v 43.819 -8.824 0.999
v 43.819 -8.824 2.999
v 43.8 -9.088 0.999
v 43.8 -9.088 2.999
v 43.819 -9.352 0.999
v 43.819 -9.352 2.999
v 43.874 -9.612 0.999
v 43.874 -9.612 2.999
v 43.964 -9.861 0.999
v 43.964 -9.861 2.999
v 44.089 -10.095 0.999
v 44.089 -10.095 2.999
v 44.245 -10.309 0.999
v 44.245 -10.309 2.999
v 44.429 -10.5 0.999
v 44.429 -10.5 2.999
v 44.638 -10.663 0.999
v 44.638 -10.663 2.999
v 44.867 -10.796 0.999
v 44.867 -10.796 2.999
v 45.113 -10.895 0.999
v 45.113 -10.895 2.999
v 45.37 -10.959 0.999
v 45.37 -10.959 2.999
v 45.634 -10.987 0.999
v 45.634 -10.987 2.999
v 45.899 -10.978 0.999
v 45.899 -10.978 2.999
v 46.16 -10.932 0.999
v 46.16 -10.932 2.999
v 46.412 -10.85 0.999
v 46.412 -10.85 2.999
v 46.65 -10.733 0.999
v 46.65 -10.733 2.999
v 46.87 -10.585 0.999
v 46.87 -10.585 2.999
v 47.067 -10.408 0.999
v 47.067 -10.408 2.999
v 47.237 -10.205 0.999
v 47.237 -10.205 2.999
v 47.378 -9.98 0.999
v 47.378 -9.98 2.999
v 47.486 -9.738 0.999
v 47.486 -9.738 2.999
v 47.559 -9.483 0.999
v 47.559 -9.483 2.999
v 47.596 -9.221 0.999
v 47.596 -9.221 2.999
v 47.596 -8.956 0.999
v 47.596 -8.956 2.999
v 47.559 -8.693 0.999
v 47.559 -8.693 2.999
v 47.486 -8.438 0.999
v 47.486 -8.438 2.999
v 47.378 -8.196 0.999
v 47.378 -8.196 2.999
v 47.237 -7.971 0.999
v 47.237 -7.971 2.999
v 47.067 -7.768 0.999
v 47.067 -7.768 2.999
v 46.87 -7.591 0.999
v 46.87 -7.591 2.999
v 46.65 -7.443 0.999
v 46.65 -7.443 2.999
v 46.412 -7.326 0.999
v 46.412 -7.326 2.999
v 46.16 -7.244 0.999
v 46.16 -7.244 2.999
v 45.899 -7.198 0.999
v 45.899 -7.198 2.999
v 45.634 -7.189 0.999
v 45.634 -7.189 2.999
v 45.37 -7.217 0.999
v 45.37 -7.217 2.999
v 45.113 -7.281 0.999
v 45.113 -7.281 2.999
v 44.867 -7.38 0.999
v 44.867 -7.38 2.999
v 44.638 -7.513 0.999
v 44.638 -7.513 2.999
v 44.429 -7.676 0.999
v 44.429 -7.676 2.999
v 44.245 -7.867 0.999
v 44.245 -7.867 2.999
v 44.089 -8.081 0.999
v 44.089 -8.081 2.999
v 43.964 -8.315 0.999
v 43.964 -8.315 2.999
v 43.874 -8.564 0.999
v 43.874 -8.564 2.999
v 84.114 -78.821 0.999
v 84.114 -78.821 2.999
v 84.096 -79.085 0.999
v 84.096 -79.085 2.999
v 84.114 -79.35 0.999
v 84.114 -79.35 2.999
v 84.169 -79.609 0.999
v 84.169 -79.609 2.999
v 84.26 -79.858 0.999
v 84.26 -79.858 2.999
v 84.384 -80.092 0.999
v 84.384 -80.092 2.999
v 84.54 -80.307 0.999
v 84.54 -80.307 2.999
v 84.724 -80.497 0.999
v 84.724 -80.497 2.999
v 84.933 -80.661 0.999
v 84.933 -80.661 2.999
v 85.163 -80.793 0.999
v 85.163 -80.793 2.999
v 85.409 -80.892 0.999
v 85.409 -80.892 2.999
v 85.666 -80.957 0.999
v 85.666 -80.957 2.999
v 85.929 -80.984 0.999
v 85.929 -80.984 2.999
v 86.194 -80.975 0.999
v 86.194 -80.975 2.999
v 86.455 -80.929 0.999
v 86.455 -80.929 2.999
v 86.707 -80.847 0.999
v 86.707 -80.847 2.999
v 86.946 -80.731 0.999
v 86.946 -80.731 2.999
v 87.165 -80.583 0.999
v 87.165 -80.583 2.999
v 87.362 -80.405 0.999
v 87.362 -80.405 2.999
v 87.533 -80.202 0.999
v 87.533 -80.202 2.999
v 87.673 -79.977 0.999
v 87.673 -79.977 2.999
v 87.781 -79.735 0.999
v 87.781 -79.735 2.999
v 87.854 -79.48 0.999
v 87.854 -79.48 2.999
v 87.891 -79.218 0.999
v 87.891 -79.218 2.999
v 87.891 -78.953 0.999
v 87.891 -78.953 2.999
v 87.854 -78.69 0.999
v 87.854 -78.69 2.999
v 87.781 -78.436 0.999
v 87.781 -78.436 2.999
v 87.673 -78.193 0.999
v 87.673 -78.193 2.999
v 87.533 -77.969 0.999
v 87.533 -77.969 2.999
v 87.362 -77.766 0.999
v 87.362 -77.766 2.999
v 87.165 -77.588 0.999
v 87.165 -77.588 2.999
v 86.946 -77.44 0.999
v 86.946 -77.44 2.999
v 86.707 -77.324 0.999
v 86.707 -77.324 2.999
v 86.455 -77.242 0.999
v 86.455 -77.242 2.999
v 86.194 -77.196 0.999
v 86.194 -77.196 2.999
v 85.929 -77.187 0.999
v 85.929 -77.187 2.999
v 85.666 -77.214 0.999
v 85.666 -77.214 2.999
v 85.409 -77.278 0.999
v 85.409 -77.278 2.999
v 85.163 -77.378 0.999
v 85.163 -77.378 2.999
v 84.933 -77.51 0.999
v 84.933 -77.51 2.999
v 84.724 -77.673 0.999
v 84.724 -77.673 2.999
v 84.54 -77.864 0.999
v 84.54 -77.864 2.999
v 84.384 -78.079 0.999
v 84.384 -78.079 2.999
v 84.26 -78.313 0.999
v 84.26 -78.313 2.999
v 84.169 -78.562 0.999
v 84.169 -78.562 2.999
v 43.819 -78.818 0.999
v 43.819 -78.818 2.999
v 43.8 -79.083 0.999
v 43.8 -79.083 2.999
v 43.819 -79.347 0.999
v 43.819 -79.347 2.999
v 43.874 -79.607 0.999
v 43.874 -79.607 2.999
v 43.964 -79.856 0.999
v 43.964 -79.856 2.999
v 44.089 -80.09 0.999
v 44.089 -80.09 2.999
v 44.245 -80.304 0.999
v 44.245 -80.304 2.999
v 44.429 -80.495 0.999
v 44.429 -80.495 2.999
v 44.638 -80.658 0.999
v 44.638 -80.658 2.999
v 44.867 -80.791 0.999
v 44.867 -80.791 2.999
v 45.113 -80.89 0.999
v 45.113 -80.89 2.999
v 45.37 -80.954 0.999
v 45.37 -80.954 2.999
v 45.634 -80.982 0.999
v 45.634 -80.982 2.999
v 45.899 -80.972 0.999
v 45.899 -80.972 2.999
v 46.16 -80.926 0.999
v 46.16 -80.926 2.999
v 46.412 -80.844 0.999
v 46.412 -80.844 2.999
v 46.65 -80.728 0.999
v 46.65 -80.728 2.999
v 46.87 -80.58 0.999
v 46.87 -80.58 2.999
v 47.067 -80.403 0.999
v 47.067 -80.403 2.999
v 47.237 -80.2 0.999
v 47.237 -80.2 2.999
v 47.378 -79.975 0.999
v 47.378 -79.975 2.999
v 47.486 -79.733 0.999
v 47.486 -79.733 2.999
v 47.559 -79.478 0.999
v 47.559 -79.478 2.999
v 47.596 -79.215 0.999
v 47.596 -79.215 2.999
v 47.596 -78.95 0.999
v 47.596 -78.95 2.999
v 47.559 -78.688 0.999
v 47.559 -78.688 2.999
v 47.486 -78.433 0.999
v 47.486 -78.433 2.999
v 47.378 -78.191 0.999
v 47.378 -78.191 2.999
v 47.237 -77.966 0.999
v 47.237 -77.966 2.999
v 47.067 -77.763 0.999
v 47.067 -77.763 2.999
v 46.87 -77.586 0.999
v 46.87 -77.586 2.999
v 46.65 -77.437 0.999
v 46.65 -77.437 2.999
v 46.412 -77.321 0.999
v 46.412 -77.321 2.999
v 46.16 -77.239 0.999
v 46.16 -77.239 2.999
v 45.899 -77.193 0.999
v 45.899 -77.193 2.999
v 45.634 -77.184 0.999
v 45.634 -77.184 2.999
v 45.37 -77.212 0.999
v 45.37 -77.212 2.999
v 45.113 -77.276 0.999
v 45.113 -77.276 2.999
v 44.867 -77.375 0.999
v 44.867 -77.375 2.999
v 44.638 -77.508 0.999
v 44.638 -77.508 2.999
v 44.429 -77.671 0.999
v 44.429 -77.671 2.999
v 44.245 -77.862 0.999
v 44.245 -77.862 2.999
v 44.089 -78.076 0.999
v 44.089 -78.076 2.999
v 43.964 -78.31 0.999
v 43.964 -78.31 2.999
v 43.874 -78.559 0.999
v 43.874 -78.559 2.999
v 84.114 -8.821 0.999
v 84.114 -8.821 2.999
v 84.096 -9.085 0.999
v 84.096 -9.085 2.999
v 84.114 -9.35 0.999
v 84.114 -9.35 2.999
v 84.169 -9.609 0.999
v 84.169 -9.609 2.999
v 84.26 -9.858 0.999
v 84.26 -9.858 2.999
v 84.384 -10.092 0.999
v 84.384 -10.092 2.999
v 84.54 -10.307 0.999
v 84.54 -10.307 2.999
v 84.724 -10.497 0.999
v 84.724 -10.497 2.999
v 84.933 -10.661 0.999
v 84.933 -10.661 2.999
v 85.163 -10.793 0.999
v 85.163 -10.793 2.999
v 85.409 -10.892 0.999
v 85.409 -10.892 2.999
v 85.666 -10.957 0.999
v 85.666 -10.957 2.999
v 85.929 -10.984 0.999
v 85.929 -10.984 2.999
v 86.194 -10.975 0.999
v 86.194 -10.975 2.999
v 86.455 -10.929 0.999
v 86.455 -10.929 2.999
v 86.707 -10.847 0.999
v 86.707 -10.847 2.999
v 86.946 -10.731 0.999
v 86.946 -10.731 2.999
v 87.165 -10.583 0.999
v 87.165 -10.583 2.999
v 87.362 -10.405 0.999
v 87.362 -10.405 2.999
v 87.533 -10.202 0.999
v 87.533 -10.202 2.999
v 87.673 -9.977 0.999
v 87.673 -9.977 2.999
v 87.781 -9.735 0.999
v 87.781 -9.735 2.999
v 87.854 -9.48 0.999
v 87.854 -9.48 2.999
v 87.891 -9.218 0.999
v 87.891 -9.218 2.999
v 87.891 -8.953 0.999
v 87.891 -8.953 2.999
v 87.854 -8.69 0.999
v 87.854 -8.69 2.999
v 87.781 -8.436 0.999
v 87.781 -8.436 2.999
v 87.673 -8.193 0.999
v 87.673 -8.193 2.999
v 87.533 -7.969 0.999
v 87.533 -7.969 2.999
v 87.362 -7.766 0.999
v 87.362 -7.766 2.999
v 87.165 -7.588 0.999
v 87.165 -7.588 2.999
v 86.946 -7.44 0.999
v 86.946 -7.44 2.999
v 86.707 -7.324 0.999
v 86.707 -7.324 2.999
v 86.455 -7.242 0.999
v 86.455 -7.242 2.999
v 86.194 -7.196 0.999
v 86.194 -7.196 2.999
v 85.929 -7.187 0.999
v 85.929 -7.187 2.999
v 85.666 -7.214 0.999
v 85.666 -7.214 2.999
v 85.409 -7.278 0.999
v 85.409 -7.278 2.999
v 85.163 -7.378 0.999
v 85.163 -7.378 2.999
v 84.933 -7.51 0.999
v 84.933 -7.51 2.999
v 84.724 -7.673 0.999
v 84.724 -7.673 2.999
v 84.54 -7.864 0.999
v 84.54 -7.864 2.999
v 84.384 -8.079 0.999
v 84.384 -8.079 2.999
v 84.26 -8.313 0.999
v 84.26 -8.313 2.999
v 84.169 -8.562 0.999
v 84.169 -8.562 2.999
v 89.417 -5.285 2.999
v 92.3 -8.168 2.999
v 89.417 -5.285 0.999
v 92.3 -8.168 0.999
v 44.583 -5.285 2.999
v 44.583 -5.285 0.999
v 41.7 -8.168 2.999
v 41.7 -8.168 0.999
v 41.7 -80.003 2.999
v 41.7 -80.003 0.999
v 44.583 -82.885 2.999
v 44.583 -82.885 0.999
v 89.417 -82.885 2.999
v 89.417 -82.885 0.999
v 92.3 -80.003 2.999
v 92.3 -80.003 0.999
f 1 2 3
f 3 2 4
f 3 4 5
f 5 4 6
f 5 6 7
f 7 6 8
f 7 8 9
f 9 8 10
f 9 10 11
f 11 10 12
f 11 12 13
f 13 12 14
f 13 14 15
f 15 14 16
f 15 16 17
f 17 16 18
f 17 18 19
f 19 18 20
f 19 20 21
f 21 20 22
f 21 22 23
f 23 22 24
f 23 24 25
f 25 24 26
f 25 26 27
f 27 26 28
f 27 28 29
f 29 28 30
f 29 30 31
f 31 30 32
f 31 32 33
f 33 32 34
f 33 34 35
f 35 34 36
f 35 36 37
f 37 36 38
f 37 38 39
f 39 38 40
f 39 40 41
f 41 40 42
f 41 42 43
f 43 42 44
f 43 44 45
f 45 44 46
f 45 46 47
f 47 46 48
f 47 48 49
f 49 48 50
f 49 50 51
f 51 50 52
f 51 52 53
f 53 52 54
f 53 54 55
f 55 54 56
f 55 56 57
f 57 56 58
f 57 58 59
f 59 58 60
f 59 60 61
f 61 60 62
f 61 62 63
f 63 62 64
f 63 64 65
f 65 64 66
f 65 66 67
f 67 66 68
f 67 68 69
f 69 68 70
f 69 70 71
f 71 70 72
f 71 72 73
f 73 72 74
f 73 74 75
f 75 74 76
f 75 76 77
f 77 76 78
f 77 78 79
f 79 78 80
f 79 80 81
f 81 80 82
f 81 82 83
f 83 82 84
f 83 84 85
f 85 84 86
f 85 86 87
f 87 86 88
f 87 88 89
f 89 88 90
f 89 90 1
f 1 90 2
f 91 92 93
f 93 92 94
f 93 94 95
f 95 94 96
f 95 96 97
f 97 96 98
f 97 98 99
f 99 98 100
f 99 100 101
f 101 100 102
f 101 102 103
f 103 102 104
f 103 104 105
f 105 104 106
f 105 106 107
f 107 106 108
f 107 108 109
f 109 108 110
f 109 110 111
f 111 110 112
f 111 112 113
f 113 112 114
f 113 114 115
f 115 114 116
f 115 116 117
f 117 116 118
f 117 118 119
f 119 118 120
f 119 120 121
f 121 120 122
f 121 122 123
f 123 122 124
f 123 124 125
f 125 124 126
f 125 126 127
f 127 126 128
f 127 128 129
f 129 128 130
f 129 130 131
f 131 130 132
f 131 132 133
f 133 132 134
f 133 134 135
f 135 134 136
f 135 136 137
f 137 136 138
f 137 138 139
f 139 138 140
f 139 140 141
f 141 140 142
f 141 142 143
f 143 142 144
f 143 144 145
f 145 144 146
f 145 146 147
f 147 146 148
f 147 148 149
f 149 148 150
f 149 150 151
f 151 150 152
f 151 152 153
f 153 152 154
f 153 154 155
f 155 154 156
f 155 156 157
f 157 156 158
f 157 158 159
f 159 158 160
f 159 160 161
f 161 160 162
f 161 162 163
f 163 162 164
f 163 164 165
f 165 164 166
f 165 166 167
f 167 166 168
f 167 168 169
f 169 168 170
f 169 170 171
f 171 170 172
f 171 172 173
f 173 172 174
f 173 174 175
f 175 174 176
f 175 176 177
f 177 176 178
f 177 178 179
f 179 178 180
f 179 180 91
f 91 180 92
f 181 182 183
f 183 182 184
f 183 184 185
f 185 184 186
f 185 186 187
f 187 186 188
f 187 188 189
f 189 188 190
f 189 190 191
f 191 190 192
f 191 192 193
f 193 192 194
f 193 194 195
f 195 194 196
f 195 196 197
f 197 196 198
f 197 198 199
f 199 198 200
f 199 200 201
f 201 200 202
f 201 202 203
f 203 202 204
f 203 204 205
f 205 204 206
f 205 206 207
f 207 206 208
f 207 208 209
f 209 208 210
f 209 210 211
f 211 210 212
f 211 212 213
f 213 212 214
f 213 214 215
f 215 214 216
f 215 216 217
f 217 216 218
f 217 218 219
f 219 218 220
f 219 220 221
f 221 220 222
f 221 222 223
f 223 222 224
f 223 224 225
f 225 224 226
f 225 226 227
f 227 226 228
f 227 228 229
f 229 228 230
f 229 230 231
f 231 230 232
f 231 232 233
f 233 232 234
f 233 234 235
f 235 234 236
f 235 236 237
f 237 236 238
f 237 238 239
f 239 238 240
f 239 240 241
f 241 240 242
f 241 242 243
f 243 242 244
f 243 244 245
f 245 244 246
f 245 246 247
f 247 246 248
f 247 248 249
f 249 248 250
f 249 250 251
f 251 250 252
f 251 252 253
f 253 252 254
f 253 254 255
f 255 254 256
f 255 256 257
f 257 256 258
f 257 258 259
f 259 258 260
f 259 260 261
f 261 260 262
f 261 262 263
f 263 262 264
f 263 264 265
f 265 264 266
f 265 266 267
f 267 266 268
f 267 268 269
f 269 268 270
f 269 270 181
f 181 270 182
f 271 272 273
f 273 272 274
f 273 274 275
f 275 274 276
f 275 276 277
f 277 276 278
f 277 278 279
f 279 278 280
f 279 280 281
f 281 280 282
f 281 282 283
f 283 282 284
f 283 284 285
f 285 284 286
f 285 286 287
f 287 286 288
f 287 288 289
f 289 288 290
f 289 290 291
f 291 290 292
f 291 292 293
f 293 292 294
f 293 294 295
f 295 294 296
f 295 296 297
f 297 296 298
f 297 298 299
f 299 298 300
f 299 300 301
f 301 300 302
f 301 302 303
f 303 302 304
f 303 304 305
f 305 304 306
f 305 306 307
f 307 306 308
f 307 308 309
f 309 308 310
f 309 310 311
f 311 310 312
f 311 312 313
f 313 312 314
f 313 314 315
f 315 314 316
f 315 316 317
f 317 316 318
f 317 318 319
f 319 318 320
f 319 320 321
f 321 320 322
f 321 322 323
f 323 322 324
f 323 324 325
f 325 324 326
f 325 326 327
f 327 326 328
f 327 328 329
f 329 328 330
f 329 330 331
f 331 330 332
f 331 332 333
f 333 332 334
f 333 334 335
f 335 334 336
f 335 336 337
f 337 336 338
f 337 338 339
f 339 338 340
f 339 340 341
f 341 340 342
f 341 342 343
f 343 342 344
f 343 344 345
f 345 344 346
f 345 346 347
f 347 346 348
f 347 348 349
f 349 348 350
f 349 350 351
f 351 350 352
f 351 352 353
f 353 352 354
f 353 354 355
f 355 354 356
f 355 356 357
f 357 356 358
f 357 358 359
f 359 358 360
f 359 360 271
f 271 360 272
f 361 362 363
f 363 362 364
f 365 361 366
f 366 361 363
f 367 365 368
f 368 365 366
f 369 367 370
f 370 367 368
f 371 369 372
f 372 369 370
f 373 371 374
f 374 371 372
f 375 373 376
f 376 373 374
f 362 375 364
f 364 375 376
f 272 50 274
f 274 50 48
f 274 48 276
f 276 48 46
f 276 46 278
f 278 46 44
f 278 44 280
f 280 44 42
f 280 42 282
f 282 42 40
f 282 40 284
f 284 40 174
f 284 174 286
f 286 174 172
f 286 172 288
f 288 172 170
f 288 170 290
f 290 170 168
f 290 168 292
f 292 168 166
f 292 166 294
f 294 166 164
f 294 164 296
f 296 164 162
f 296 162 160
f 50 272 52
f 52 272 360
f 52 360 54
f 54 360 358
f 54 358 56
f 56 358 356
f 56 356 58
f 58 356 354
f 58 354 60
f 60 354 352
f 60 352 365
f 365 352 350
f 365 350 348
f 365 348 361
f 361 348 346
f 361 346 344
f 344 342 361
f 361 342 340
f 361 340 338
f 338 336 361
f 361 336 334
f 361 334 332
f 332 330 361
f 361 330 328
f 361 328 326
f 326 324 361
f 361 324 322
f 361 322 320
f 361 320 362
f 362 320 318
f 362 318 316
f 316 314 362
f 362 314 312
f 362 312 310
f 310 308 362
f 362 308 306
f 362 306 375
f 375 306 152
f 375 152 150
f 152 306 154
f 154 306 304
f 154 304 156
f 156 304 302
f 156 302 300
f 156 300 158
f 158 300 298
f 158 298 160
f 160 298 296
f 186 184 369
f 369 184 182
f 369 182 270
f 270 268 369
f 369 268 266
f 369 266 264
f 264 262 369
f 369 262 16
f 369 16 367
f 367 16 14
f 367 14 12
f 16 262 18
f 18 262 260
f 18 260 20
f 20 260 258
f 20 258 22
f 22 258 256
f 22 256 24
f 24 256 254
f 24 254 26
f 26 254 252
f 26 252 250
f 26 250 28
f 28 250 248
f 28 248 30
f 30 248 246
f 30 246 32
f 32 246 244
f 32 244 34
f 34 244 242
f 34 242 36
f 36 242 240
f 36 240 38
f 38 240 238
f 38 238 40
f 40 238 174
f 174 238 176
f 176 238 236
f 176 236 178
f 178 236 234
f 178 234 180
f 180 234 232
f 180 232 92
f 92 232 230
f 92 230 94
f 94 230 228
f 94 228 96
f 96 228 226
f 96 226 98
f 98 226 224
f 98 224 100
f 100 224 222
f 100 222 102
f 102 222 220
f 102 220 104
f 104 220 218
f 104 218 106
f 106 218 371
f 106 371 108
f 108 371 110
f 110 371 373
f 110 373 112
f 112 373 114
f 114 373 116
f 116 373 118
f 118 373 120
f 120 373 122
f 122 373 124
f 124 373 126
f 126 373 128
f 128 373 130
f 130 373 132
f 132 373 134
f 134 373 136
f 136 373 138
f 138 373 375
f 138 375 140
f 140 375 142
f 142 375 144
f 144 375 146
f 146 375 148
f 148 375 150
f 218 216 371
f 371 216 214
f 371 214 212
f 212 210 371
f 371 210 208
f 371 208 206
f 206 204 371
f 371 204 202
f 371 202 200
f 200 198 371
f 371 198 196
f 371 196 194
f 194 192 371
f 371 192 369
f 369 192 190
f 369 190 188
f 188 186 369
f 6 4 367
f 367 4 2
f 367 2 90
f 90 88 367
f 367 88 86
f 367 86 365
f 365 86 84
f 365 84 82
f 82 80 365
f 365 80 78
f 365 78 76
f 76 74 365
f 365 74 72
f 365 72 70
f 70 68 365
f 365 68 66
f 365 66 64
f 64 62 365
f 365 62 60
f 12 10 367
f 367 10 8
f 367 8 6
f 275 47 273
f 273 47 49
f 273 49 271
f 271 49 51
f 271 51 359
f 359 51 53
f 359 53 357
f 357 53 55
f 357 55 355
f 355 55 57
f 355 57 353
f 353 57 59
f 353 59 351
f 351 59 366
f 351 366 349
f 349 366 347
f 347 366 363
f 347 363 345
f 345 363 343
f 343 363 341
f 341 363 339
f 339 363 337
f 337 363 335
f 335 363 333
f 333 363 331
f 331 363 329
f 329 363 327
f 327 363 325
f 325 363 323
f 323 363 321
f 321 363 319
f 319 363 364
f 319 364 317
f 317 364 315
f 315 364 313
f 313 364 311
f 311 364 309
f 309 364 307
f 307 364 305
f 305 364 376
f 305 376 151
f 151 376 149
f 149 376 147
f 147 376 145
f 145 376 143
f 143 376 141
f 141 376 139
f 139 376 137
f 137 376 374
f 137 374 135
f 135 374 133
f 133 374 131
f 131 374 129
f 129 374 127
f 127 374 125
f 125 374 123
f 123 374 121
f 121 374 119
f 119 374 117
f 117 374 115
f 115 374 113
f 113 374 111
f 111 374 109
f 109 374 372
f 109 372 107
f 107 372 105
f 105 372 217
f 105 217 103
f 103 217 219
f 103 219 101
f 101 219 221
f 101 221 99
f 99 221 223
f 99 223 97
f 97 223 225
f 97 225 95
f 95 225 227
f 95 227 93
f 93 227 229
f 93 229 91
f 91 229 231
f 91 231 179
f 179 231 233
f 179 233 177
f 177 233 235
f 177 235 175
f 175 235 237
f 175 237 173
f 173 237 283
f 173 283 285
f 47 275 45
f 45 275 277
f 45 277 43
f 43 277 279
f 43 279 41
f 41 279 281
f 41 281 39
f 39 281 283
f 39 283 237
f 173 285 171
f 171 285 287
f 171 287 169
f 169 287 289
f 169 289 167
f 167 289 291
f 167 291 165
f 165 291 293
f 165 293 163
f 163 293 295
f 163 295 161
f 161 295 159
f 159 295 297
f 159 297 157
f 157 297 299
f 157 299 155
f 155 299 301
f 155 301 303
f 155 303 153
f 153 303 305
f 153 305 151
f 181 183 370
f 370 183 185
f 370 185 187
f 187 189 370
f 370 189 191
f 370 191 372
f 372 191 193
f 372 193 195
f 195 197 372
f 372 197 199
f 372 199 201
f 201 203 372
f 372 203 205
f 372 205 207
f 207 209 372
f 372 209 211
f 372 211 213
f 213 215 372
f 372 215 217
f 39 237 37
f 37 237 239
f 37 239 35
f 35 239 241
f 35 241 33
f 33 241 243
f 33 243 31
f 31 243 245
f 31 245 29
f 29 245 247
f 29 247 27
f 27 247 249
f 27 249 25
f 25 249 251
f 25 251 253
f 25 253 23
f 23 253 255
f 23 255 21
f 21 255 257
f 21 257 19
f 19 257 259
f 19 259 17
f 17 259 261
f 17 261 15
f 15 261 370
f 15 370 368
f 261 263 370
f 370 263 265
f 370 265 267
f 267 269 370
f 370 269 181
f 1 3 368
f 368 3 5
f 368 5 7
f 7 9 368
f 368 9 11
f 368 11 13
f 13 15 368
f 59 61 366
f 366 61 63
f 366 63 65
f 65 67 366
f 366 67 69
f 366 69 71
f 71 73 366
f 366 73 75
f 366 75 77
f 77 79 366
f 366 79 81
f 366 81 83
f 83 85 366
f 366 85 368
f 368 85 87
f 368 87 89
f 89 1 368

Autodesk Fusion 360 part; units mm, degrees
ref_plane "WorkPlane2" through (0, 0, 2.999) normal (0, 0, 1) x (1, 0, 0)
sketch "Sketch4" plane through (0, 0, 2.999) normal (0, 0, 1) x (1, 0, 0)
  line L0 (92.5002, -5.0854) -> (92.4954, -5.0854)
  line L1 (89.5002, -5.0854) -> (44.5002, -5.0854) construction
  line L2 (44.5002, -5.0854) -> (41.5002, -8.0854) construction
  line L3 (41.5002, -8.0854) -> (41.5002, -80.0854) construction
  line L4 (41.5002, -80.0854) -> (44.5002, -83.0854) construction
  line L5 (44.5002, -83.0854) -> (89.5002, -83.0854) construction
  line L6 (92.5002, -80.0854) -> (92.5002, -8.0854) construction
  line L7 (86.0002, -79.0854) -> (86.0002, -83.0854) construction
  line L8 (86.0002, -79.0854) -> (92.5002, -79.0854) construction
  line L9 (86.0002, -79.0854) -> (45.705, -79.088) construction
  line L10 (45.7002, -79.0828) -> (41.5002, -79.0831) construction
  line L11 (45.7002, -9.088) -> (45.7002, -5.0854) construction
  line L12 (45.7002, -9.088) -> (45.705, -79.088) construction
  line L13 (45.6956, -9.088) -> (85.9956, -9.0854) construction
  line L14 (85.9956, -9.0854) -> (92.5002, -9.0854) construction
  line L15 (85.9956, -9.0854) -> (85.9956, -5.0854) construction
  line L16 (85.9956, -79.0854) -> (85.9931, -9.0854) construction
  line L17 (92.5002, -80.0854) -> (89.5002, -83.0854) construction
  line L18 (92.5002, -8.0854) -> (89.5002, -5.0854) construction
  line L19 (44.583, -82.8854) -> (89.4174, -82.8854)
  line L20 (92.3002, -80.0026) -> (89.4174, -82.8854)
  line L21 (92.3002, -80.0026) -> (92.3002, -8.1683)
  line L22 (92.3002, -8.1683) -> (89.4174, -5.2854)
  line L23 (89.4174, -5.2854) -> (44.583, -5.2854)
  line L24 (44.583, -5.2854) -> (41.7002, -8.1683)
  line L25 (41.7002, -8.1683) -> (41.7002, -80.0026)
  line L26 (41.7002, -80.0026) -> (44.583, -82.8854)
  circle A0 centre (85.9956, -9.0854) radius 1.9
  circle A1 centre (45.7002, -9.088) radius 1.9
  circle A2 centre (85.9956, -79.0854) radius 1.9
  circle A3 centre (45.7002, -79.0828) radius 1.9
  line L27 (92.5002, -44.0854) -> (41.5002, -44.0854) construction
  point P0 (92.5002, -83.0854)
  point P1 (92.5002, -5.0854)
  dimension "d34" = 6.5
  dimension "d35" = 4
  dimension "d36" = 4.2
  dimension "d37" = 40.2952
  dimension "d38" = 4
  dimension "d39" = 3
  dimension "d40" = 3
  dimension "d43" = 78
  dimension "d44" = 3
  dimension "d45" = 3
  dimension "d46" = 3
  dimension "d47" = 3
  dimension "d48" = 3
  dimension "d49" = 3
  dimension "d50" = -0.2
  dimension "d53" = 3.8
  dimension "d54" = 3.8
  dimension "d55" = 3.8
  dimension "d56" = 3.8
  dimension "d57" = 51
extrude "Extrude11" add sketch "Sketch4" against normal blind 2
equation "d39 = d40"
equation "d40 = d44"
equation "d45 = d44"
equation "d46 = d44"
equation "d47 = d46"
equation "d48 = d44"
equation "d49 = d48"
equation "d53 = d55"
equation "d54 = d55"
equation "d56 = d55"
